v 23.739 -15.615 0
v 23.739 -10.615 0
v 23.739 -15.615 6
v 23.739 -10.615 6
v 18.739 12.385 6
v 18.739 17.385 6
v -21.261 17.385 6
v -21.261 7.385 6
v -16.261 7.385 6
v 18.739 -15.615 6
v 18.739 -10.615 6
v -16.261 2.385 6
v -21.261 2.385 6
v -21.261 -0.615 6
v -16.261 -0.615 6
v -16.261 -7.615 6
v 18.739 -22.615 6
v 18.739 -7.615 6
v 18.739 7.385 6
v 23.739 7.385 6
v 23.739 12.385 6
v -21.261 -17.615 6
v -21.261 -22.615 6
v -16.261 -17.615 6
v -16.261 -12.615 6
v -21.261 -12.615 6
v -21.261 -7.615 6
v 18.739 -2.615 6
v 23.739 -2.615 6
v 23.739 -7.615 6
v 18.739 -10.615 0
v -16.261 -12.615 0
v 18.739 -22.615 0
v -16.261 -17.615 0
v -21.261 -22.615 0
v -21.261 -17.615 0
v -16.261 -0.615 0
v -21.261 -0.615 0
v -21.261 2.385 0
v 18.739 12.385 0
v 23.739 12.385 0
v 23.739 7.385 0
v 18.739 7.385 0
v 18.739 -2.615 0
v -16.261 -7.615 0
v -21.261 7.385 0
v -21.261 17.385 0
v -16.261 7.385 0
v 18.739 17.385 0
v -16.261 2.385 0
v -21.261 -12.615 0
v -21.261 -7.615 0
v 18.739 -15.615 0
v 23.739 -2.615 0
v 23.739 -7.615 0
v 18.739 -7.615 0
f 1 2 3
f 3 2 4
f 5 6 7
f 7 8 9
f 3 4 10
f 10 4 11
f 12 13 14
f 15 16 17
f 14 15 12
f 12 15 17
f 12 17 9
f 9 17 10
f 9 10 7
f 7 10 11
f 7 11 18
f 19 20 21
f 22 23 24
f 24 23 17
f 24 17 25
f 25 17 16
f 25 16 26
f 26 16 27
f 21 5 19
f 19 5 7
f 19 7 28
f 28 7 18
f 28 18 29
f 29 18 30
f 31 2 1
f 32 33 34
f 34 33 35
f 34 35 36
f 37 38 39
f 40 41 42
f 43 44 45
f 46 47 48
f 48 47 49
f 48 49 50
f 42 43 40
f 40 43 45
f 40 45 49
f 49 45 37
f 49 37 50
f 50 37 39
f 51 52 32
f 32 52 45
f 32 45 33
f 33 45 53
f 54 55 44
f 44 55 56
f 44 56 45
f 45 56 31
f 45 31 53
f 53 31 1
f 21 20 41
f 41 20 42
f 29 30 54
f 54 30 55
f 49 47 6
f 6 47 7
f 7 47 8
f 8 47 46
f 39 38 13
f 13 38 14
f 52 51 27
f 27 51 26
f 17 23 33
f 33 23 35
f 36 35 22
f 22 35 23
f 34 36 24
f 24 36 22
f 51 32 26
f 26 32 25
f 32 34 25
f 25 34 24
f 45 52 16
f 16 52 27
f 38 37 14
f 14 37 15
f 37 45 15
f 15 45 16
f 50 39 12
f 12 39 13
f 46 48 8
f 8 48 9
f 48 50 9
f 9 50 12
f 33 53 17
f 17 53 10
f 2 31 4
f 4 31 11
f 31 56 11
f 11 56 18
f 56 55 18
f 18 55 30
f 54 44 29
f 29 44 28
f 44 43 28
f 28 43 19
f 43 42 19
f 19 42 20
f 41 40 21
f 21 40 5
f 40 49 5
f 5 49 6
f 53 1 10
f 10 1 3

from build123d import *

# Parameters (mm, degrees)
SKETCH1_W           = 45
SKETCH1_H           = 40
BOSS_EXTRUDE1_DEPTH = 6
SKETCH2_W           = 5
SKETCH2_H           = 5
SKETCH2_H_2         = 7
CUT_EXTRUDE1_DEPTH  = 6
SKETCH3_W           = 5
SKETCH3_H           = 5
SKETCH3_H_2         = 3
SKETCH3_H_3         = 10
CUT_EXTRUDE2_DEPTH  = 6
SKETCH4_W           = 5
SKETCH4_H           = 7
CUT_EXTRUDE3_DEPTH  = 6


with BuildPart() as part:
    # Sketch1 → Boss-Extrude1 (new body)
    with BuildSketch(Plane.XY):
        with Locations((1.238898757, -2.615452931)):
            Rectangle(SKETCH1_W, SKETCH1_H)
    extrude(amount=BOSS_EXTRUDE1_DEPTH)

    # Sketch2 → Cut-Extrude1 (cut)
    with BuildSketch(Plane.XY.offset(6)):
        with Locations((-18.761101243, 4.884547069)):
            Rectangle(SKETCH2_W, SKETCH2_H)
        with Locations((-18.761101243, -4.115452931)):
            Rectangle(SKETCH2_W, SKETCH2_H_2)
        with Locations((-18.761101243, -15.115452931)):
            Rectangle(SKETCH2_W, SKETCH2_H)
    extrude(amount=-CUT_EXTRUDE1_DEPTH, mode=Mode.SUBTRACT)

    # Sketch3 → Cut-Extrude2 (cut)
    with BuildSketch(Plane.XY.offset(6)):
        with Locations((21.238898757, -20.115452931)):
            Rectangle(SKETCH3_W, SKETCH3_H)
        with Locations((21.238898757, -9.115452931)):
            Rectangle(SKETCH3_W, SKETCH3_H_2)
        with Locations((21.238898757, 14.884547069)):
            Rectangle(SKETCH3_W, SKETCH3_H)
        with Locations((21.238898757, 2.384547069)):
            Rectangle(SKETCH3_W, SKETCH3_H_3)
    extrude(amount=-CUT_EXTRUDE2_DEPTH, mode=Mode.SUBTRACT)

    # Sketch4 → Cut-Extrude3 (cut)
    with BuildSketch(Plane.XY.offset(6)):
        with Locations((21.238898757, -19.115452931)):
            Rectangle(SKETCH4_W, SKETCH4_H)
    extrude(amount=-CUT_EXTRUDE3_DEPTH, mode=Mode.SUBTRACT)


solid = part.part
